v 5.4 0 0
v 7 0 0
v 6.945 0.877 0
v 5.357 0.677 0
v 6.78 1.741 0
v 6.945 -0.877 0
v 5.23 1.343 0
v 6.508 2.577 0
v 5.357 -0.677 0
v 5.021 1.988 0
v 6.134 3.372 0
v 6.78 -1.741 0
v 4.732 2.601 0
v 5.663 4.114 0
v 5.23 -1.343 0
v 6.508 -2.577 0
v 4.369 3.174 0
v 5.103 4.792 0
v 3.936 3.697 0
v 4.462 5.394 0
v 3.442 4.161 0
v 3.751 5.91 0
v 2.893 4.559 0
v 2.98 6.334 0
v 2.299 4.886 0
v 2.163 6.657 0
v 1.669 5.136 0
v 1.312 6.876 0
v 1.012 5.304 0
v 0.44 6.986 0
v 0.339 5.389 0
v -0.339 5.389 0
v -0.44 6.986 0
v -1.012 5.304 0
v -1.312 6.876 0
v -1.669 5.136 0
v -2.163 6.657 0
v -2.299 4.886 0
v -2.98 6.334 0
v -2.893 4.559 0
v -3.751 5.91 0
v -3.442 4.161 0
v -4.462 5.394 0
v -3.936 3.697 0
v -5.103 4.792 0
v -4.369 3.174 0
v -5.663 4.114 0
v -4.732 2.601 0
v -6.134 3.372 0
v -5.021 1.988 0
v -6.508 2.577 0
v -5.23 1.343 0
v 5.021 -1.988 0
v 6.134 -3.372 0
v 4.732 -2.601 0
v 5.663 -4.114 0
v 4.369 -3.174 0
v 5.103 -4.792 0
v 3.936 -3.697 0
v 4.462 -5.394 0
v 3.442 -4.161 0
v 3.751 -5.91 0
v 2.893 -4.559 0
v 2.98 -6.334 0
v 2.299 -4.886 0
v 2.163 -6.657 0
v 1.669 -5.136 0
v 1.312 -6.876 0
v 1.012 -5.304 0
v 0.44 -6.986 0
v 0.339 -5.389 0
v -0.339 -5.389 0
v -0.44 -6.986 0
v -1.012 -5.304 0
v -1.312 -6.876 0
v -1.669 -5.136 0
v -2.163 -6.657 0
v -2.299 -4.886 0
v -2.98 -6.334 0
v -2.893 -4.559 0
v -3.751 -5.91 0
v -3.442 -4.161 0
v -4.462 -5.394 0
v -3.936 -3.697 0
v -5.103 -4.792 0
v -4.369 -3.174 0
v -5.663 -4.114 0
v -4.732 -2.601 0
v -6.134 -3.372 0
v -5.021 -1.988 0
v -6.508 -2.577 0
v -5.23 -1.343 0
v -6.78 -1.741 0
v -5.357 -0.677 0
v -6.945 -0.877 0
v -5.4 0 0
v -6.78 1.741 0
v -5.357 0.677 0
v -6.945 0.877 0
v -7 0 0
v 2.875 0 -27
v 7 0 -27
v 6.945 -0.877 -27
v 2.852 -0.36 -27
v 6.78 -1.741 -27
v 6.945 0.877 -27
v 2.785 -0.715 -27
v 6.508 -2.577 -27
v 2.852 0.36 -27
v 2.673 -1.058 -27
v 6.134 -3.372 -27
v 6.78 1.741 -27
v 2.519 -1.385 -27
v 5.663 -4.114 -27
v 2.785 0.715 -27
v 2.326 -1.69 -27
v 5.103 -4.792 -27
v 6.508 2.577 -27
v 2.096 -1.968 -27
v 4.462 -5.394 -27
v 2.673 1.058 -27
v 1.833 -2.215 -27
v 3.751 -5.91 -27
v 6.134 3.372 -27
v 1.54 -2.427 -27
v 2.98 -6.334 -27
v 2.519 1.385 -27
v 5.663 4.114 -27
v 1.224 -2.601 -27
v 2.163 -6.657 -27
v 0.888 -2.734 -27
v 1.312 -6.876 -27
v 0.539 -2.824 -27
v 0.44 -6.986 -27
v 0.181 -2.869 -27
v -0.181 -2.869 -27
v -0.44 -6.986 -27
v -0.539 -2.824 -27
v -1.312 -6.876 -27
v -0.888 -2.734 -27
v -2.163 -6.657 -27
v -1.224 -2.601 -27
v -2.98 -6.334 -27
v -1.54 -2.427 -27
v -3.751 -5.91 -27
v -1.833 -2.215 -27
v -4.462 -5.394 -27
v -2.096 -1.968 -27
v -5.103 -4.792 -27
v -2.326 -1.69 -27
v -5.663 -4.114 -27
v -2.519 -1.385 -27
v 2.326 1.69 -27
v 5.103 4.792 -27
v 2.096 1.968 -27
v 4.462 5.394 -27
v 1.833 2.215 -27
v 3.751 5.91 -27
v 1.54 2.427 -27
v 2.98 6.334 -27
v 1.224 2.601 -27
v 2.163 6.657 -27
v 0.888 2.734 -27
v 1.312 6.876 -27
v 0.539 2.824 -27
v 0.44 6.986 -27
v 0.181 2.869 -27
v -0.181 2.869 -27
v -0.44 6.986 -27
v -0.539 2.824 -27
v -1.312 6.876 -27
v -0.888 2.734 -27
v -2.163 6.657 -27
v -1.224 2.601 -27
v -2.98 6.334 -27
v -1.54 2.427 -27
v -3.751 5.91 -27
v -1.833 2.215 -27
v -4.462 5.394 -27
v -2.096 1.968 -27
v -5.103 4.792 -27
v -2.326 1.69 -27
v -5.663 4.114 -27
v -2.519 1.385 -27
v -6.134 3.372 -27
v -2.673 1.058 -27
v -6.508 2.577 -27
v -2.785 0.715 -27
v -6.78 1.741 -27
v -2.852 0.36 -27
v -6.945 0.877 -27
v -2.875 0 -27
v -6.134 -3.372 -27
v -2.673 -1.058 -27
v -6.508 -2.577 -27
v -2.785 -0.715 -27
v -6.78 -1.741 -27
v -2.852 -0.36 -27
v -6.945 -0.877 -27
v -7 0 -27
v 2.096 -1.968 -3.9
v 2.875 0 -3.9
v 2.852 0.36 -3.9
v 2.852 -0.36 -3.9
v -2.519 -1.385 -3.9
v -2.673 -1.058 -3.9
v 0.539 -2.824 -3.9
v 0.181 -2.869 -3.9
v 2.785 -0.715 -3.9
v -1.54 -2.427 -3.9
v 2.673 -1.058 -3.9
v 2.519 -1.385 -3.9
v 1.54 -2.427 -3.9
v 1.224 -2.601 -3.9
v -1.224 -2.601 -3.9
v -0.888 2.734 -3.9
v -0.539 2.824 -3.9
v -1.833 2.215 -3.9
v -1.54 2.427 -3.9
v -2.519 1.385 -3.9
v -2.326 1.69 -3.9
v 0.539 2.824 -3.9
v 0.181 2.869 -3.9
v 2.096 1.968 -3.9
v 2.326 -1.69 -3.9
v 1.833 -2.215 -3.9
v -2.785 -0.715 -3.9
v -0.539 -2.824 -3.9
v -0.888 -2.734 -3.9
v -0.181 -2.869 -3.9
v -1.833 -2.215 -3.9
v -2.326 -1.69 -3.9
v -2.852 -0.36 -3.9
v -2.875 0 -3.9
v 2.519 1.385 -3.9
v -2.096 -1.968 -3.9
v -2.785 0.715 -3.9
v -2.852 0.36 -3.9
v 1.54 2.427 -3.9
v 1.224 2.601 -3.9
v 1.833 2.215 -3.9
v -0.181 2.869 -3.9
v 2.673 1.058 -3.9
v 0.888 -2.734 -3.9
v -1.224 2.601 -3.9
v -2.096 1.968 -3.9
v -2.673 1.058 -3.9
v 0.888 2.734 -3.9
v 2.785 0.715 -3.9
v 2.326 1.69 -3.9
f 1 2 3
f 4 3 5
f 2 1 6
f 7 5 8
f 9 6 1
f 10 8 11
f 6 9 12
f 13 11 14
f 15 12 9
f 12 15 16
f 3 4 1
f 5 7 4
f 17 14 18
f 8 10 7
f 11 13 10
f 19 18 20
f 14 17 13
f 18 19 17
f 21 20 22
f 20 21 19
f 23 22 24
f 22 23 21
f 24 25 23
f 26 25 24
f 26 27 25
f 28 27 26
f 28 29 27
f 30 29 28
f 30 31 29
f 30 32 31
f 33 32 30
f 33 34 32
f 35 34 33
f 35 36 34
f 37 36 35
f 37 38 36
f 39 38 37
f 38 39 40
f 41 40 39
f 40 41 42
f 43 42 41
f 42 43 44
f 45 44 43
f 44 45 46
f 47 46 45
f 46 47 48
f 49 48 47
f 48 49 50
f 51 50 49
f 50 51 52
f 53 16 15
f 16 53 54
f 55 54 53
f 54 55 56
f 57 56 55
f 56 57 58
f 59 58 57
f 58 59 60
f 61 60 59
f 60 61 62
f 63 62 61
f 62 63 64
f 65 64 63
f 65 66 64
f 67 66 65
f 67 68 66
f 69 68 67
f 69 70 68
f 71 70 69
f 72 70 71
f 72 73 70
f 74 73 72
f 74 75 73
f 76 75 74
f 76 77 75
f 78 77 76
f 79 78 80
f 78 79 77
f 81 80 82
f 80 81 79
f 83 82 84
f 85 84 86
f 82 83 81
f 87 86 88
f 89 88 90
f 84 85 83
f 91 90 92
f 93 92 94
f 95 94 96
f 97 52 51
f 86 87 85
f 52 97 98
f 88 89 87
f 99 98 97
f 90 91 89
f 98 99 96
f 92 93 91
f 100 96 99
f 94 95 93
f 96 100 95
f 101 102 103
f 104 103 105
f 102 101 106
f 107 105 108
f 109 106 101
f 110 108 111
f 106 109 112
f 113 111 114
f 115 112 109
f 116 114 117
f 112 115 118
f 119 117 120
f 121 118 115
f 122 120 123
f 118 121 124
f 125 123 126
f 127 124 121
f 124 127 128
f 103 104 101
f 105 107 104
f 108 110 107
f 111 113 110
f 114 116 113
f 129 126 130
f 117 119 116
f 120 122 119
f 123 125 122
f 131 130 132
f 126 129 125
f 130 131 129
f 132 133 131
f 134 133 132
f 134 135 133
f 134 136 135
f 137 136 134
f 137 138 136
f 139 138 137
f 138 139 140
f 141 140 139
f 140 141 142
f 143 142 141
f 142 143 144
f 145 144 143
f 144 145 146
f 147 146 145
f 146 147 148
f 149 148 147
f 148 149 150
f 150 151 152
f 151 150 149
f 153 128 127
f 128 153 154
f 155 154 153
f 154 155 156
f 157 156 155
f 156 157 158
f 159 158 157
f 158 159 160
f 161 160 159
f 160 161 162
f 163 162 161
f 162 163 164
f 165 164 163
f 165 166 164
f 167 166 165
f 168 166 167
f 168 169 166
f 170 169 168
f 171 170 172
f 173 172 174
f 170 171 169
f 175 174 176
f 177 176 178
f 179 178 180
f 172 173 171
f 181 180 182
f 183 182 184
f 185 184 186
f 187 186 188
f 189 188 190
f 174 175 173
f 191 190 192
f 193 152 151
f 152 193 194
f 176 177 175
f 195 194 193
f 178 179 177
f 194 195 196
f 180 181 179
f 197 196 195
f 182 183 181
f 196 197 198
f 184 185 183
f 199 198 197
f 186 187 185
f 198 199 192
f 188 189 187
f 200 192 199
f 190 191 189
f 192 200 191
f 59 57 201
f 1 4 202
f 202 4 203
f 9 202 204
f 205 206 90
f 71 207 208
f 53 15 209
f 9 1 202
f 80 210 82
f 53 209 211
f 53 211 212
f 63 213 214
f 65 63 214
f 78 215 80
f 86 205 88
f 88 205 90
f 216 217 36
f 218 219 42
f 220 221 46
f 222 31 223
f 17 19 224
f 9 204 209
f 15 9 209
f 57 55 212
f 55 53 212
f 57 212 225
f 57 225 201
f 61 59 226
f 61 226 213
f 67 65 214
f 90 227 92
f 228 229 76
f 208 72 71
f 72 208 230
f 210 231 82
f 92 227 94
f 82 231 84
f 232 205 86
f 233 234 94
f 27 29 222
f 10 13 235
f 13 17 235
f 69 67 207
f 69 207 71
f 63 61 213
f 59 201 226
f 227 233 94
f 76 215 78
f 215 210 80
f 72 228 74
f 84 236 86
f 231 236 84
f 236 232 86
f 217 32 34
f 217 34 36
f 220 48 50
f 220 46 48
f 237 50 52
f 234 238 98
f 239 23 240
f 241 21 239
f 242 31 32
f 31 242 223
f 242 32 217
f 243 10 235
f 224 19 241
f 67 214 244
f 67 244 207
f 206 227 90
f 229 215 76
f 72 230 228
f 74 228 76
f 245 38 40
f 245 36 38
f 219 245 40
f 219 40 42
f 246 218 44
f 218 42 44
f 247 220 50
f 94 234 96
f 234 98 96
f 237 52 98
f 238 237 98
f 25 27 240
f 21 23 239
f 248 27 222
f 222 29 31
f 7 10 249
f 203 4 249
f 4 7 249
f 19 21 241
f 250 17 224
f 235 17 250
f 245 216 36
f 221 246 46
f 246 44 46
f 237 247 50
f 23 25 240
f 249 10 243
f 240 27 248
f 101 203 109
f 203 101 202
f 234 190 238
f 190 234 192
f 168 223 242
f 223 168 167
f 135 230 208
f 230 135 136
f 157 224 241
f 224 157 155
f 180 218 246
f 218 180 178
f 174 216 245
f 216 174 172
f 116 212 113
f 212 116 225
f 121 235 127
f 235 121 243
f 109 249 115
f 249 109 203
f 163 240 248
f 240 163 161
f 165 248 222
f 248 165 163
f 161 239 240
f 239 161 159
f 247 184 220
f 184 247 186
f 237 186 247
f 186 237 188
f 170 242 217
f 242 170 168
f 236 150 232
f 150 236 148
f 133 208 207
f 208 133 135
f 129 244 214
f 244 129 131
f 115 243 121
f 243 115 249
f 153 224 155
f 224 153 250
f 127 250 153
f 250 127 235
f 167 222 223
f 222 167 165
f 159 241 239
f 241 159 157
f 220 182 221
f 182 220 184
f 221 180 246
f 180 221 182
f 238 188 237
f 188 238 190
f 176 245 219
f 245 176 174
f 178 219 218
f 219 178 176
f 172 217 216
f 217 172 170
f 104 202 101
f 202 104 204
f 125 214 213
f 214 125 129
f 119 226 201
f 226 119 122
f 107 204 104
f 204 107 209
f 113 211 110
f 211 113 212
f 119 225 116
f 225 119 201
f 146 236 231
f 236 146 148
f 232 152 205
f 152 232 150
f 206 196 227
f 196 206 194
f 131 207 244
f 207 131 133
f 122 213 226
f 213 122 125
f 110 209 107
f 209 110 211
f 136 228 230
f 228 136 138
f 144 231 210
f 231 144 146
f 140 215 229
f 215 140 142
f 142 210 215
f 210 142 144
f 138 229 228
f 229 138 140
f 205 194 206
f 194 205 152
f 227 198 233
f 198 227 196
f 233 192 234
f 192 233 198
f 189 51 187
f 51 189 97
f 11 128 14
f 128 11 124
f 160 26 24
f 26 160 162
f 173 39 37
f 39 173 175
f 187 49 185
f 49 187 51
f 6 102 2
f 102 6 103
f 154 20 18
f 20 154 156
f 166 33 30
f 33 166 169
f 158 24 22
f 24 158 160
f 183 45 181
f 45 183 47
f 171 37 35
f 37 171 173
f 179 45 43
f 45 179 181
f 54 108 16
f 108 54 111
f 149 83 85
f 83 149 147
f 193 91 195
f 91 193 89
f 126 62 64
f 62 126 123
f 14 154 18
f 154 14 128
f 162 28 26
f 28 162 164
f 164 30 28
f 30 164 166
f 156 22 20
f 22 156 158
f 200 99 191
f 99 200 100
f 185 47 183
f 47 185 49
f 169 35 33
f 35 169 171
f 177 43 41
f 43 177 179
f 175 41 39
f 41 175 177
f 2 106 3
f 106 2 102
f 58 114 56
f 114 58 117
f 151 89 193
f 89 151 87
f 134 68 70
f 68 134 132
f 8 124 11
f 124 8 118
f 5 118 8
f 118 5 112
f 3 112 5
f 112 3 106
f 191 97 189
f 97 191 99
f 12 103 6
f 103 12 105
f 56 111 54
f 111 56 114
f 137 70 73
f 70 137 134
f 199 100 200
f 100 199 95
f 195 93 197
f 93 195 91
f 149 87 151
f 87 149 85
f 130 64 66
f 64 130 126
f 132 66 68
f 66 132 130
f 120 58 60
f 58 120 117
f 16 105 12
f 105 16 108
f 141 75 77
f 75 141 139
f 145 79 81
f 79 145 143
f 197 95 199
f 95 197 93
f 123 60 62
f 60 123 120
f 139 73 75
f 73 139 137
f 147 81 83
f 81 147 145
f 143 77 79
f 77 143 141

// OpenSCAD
$fn = 50;


difference() {
	union() {
		translate(v = [0, 0, -27.0000000000]) {
			cylinder(h = 27, r = 7.0000000000);
		}
		cylinder(h = 0, r = 13.0000000000);
	}
	union() {
		translate(v = [0, 0, 0]) {
			rotate(a = [0, 0, 0]) {
				difference() {
					union() {
						#translate(v = [0, 0, -27.0000000000]) {
							cylinder(h = 27, r = 2.6000000000);
						}
						#translate(v = [0, 0, -3.9000000000]) {
							cylinder(h = 3.9000000000, r = 7.0000000000, r1 = 2.8750000000, r2 = 5.4000000000);
						}
						#translate(v = [0, 0, -27.0000000000]) {
							cylinder(h = 27, r = 2.8750000000);
						}
						#translate(v = [0, 0, -27.0000000000]) {
							cylinder(h = 27, r = 2.6000000000);
						}
					}
					union();
				}
			}
		}
	}
}
